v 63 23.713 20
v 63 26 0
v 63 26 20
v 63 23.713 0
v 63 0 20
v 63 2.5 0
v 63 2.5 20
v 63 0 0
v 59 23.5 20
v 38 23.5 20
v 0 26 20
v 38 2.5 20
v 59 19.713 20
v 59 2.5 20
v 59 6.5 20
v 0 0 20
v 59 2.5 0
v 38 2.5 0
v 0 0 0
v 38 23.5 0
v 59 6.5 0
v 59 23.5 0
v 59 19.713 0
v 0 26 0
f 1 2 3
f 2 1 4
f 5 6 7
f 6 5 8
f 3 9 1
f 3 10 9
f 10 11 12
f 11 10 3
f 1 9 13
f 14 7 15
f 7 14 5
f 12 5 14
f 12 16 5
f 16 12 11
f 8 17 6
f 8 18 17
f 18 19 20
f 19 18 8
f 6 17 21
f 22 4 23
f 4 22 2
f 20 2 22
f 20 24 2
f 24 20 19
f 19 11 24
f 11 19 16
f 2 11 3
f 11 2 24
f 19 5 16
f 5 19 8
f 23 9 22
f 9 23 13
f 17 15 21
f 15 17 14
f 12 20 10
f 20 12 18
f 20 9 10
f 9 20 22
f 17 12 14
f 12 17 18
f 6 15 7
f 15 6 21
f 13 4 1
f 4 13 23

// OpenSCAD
// 20x20x35

/*
    A thing that snaps to the back of our headboard
    because it can't be against the wall due to the
    kickboard.
    
    The bars it will snap to are about 20mmx20mm, and
    the distance the kickboard & trim sticks-out is 
    about 35mm.
*/
PART_HEIGHT = 20;

POST_LENGTH = 20;
POST_WIDTH = 20;
WALL_GAP = 35;
CLIP = 5;

TOLERANCE = 1;
WALL_THICKNESS = 3;


difference(){
    
    cube([WALL_GAP+WALL_THICKNESS+POST_LENGTH+CLIP,POST_WIDTH+(WALL_THICKNESS*2),PART_HEIGHT]);
    
    // post cutout
    translate([WALL_GAP+WALL_THICKNESS,WALL_THICKNESS-(TOLERANCE*.5),-TOLERANCE]){
        cube([POST_LENGTH+TOLERANCE,POST_WIDTH+TOLERANCE,PART_HEIGHT+(TOLERANCE*2)]);
    }
    
    // clip cutout
    translate([WALL_GAP+WALL_THICKNESS+(POST_LENGTH*1.25),WALL_THICKNESS-(TOLERANCE*.5),-TOLERANCE]){
        rotate([0,0,45]){
            cube([POST_LENGTH*.75,POST_WIDTH*.75,PART_HEIGHT+(TOLERANCE*2)]);
        }
    }
}
